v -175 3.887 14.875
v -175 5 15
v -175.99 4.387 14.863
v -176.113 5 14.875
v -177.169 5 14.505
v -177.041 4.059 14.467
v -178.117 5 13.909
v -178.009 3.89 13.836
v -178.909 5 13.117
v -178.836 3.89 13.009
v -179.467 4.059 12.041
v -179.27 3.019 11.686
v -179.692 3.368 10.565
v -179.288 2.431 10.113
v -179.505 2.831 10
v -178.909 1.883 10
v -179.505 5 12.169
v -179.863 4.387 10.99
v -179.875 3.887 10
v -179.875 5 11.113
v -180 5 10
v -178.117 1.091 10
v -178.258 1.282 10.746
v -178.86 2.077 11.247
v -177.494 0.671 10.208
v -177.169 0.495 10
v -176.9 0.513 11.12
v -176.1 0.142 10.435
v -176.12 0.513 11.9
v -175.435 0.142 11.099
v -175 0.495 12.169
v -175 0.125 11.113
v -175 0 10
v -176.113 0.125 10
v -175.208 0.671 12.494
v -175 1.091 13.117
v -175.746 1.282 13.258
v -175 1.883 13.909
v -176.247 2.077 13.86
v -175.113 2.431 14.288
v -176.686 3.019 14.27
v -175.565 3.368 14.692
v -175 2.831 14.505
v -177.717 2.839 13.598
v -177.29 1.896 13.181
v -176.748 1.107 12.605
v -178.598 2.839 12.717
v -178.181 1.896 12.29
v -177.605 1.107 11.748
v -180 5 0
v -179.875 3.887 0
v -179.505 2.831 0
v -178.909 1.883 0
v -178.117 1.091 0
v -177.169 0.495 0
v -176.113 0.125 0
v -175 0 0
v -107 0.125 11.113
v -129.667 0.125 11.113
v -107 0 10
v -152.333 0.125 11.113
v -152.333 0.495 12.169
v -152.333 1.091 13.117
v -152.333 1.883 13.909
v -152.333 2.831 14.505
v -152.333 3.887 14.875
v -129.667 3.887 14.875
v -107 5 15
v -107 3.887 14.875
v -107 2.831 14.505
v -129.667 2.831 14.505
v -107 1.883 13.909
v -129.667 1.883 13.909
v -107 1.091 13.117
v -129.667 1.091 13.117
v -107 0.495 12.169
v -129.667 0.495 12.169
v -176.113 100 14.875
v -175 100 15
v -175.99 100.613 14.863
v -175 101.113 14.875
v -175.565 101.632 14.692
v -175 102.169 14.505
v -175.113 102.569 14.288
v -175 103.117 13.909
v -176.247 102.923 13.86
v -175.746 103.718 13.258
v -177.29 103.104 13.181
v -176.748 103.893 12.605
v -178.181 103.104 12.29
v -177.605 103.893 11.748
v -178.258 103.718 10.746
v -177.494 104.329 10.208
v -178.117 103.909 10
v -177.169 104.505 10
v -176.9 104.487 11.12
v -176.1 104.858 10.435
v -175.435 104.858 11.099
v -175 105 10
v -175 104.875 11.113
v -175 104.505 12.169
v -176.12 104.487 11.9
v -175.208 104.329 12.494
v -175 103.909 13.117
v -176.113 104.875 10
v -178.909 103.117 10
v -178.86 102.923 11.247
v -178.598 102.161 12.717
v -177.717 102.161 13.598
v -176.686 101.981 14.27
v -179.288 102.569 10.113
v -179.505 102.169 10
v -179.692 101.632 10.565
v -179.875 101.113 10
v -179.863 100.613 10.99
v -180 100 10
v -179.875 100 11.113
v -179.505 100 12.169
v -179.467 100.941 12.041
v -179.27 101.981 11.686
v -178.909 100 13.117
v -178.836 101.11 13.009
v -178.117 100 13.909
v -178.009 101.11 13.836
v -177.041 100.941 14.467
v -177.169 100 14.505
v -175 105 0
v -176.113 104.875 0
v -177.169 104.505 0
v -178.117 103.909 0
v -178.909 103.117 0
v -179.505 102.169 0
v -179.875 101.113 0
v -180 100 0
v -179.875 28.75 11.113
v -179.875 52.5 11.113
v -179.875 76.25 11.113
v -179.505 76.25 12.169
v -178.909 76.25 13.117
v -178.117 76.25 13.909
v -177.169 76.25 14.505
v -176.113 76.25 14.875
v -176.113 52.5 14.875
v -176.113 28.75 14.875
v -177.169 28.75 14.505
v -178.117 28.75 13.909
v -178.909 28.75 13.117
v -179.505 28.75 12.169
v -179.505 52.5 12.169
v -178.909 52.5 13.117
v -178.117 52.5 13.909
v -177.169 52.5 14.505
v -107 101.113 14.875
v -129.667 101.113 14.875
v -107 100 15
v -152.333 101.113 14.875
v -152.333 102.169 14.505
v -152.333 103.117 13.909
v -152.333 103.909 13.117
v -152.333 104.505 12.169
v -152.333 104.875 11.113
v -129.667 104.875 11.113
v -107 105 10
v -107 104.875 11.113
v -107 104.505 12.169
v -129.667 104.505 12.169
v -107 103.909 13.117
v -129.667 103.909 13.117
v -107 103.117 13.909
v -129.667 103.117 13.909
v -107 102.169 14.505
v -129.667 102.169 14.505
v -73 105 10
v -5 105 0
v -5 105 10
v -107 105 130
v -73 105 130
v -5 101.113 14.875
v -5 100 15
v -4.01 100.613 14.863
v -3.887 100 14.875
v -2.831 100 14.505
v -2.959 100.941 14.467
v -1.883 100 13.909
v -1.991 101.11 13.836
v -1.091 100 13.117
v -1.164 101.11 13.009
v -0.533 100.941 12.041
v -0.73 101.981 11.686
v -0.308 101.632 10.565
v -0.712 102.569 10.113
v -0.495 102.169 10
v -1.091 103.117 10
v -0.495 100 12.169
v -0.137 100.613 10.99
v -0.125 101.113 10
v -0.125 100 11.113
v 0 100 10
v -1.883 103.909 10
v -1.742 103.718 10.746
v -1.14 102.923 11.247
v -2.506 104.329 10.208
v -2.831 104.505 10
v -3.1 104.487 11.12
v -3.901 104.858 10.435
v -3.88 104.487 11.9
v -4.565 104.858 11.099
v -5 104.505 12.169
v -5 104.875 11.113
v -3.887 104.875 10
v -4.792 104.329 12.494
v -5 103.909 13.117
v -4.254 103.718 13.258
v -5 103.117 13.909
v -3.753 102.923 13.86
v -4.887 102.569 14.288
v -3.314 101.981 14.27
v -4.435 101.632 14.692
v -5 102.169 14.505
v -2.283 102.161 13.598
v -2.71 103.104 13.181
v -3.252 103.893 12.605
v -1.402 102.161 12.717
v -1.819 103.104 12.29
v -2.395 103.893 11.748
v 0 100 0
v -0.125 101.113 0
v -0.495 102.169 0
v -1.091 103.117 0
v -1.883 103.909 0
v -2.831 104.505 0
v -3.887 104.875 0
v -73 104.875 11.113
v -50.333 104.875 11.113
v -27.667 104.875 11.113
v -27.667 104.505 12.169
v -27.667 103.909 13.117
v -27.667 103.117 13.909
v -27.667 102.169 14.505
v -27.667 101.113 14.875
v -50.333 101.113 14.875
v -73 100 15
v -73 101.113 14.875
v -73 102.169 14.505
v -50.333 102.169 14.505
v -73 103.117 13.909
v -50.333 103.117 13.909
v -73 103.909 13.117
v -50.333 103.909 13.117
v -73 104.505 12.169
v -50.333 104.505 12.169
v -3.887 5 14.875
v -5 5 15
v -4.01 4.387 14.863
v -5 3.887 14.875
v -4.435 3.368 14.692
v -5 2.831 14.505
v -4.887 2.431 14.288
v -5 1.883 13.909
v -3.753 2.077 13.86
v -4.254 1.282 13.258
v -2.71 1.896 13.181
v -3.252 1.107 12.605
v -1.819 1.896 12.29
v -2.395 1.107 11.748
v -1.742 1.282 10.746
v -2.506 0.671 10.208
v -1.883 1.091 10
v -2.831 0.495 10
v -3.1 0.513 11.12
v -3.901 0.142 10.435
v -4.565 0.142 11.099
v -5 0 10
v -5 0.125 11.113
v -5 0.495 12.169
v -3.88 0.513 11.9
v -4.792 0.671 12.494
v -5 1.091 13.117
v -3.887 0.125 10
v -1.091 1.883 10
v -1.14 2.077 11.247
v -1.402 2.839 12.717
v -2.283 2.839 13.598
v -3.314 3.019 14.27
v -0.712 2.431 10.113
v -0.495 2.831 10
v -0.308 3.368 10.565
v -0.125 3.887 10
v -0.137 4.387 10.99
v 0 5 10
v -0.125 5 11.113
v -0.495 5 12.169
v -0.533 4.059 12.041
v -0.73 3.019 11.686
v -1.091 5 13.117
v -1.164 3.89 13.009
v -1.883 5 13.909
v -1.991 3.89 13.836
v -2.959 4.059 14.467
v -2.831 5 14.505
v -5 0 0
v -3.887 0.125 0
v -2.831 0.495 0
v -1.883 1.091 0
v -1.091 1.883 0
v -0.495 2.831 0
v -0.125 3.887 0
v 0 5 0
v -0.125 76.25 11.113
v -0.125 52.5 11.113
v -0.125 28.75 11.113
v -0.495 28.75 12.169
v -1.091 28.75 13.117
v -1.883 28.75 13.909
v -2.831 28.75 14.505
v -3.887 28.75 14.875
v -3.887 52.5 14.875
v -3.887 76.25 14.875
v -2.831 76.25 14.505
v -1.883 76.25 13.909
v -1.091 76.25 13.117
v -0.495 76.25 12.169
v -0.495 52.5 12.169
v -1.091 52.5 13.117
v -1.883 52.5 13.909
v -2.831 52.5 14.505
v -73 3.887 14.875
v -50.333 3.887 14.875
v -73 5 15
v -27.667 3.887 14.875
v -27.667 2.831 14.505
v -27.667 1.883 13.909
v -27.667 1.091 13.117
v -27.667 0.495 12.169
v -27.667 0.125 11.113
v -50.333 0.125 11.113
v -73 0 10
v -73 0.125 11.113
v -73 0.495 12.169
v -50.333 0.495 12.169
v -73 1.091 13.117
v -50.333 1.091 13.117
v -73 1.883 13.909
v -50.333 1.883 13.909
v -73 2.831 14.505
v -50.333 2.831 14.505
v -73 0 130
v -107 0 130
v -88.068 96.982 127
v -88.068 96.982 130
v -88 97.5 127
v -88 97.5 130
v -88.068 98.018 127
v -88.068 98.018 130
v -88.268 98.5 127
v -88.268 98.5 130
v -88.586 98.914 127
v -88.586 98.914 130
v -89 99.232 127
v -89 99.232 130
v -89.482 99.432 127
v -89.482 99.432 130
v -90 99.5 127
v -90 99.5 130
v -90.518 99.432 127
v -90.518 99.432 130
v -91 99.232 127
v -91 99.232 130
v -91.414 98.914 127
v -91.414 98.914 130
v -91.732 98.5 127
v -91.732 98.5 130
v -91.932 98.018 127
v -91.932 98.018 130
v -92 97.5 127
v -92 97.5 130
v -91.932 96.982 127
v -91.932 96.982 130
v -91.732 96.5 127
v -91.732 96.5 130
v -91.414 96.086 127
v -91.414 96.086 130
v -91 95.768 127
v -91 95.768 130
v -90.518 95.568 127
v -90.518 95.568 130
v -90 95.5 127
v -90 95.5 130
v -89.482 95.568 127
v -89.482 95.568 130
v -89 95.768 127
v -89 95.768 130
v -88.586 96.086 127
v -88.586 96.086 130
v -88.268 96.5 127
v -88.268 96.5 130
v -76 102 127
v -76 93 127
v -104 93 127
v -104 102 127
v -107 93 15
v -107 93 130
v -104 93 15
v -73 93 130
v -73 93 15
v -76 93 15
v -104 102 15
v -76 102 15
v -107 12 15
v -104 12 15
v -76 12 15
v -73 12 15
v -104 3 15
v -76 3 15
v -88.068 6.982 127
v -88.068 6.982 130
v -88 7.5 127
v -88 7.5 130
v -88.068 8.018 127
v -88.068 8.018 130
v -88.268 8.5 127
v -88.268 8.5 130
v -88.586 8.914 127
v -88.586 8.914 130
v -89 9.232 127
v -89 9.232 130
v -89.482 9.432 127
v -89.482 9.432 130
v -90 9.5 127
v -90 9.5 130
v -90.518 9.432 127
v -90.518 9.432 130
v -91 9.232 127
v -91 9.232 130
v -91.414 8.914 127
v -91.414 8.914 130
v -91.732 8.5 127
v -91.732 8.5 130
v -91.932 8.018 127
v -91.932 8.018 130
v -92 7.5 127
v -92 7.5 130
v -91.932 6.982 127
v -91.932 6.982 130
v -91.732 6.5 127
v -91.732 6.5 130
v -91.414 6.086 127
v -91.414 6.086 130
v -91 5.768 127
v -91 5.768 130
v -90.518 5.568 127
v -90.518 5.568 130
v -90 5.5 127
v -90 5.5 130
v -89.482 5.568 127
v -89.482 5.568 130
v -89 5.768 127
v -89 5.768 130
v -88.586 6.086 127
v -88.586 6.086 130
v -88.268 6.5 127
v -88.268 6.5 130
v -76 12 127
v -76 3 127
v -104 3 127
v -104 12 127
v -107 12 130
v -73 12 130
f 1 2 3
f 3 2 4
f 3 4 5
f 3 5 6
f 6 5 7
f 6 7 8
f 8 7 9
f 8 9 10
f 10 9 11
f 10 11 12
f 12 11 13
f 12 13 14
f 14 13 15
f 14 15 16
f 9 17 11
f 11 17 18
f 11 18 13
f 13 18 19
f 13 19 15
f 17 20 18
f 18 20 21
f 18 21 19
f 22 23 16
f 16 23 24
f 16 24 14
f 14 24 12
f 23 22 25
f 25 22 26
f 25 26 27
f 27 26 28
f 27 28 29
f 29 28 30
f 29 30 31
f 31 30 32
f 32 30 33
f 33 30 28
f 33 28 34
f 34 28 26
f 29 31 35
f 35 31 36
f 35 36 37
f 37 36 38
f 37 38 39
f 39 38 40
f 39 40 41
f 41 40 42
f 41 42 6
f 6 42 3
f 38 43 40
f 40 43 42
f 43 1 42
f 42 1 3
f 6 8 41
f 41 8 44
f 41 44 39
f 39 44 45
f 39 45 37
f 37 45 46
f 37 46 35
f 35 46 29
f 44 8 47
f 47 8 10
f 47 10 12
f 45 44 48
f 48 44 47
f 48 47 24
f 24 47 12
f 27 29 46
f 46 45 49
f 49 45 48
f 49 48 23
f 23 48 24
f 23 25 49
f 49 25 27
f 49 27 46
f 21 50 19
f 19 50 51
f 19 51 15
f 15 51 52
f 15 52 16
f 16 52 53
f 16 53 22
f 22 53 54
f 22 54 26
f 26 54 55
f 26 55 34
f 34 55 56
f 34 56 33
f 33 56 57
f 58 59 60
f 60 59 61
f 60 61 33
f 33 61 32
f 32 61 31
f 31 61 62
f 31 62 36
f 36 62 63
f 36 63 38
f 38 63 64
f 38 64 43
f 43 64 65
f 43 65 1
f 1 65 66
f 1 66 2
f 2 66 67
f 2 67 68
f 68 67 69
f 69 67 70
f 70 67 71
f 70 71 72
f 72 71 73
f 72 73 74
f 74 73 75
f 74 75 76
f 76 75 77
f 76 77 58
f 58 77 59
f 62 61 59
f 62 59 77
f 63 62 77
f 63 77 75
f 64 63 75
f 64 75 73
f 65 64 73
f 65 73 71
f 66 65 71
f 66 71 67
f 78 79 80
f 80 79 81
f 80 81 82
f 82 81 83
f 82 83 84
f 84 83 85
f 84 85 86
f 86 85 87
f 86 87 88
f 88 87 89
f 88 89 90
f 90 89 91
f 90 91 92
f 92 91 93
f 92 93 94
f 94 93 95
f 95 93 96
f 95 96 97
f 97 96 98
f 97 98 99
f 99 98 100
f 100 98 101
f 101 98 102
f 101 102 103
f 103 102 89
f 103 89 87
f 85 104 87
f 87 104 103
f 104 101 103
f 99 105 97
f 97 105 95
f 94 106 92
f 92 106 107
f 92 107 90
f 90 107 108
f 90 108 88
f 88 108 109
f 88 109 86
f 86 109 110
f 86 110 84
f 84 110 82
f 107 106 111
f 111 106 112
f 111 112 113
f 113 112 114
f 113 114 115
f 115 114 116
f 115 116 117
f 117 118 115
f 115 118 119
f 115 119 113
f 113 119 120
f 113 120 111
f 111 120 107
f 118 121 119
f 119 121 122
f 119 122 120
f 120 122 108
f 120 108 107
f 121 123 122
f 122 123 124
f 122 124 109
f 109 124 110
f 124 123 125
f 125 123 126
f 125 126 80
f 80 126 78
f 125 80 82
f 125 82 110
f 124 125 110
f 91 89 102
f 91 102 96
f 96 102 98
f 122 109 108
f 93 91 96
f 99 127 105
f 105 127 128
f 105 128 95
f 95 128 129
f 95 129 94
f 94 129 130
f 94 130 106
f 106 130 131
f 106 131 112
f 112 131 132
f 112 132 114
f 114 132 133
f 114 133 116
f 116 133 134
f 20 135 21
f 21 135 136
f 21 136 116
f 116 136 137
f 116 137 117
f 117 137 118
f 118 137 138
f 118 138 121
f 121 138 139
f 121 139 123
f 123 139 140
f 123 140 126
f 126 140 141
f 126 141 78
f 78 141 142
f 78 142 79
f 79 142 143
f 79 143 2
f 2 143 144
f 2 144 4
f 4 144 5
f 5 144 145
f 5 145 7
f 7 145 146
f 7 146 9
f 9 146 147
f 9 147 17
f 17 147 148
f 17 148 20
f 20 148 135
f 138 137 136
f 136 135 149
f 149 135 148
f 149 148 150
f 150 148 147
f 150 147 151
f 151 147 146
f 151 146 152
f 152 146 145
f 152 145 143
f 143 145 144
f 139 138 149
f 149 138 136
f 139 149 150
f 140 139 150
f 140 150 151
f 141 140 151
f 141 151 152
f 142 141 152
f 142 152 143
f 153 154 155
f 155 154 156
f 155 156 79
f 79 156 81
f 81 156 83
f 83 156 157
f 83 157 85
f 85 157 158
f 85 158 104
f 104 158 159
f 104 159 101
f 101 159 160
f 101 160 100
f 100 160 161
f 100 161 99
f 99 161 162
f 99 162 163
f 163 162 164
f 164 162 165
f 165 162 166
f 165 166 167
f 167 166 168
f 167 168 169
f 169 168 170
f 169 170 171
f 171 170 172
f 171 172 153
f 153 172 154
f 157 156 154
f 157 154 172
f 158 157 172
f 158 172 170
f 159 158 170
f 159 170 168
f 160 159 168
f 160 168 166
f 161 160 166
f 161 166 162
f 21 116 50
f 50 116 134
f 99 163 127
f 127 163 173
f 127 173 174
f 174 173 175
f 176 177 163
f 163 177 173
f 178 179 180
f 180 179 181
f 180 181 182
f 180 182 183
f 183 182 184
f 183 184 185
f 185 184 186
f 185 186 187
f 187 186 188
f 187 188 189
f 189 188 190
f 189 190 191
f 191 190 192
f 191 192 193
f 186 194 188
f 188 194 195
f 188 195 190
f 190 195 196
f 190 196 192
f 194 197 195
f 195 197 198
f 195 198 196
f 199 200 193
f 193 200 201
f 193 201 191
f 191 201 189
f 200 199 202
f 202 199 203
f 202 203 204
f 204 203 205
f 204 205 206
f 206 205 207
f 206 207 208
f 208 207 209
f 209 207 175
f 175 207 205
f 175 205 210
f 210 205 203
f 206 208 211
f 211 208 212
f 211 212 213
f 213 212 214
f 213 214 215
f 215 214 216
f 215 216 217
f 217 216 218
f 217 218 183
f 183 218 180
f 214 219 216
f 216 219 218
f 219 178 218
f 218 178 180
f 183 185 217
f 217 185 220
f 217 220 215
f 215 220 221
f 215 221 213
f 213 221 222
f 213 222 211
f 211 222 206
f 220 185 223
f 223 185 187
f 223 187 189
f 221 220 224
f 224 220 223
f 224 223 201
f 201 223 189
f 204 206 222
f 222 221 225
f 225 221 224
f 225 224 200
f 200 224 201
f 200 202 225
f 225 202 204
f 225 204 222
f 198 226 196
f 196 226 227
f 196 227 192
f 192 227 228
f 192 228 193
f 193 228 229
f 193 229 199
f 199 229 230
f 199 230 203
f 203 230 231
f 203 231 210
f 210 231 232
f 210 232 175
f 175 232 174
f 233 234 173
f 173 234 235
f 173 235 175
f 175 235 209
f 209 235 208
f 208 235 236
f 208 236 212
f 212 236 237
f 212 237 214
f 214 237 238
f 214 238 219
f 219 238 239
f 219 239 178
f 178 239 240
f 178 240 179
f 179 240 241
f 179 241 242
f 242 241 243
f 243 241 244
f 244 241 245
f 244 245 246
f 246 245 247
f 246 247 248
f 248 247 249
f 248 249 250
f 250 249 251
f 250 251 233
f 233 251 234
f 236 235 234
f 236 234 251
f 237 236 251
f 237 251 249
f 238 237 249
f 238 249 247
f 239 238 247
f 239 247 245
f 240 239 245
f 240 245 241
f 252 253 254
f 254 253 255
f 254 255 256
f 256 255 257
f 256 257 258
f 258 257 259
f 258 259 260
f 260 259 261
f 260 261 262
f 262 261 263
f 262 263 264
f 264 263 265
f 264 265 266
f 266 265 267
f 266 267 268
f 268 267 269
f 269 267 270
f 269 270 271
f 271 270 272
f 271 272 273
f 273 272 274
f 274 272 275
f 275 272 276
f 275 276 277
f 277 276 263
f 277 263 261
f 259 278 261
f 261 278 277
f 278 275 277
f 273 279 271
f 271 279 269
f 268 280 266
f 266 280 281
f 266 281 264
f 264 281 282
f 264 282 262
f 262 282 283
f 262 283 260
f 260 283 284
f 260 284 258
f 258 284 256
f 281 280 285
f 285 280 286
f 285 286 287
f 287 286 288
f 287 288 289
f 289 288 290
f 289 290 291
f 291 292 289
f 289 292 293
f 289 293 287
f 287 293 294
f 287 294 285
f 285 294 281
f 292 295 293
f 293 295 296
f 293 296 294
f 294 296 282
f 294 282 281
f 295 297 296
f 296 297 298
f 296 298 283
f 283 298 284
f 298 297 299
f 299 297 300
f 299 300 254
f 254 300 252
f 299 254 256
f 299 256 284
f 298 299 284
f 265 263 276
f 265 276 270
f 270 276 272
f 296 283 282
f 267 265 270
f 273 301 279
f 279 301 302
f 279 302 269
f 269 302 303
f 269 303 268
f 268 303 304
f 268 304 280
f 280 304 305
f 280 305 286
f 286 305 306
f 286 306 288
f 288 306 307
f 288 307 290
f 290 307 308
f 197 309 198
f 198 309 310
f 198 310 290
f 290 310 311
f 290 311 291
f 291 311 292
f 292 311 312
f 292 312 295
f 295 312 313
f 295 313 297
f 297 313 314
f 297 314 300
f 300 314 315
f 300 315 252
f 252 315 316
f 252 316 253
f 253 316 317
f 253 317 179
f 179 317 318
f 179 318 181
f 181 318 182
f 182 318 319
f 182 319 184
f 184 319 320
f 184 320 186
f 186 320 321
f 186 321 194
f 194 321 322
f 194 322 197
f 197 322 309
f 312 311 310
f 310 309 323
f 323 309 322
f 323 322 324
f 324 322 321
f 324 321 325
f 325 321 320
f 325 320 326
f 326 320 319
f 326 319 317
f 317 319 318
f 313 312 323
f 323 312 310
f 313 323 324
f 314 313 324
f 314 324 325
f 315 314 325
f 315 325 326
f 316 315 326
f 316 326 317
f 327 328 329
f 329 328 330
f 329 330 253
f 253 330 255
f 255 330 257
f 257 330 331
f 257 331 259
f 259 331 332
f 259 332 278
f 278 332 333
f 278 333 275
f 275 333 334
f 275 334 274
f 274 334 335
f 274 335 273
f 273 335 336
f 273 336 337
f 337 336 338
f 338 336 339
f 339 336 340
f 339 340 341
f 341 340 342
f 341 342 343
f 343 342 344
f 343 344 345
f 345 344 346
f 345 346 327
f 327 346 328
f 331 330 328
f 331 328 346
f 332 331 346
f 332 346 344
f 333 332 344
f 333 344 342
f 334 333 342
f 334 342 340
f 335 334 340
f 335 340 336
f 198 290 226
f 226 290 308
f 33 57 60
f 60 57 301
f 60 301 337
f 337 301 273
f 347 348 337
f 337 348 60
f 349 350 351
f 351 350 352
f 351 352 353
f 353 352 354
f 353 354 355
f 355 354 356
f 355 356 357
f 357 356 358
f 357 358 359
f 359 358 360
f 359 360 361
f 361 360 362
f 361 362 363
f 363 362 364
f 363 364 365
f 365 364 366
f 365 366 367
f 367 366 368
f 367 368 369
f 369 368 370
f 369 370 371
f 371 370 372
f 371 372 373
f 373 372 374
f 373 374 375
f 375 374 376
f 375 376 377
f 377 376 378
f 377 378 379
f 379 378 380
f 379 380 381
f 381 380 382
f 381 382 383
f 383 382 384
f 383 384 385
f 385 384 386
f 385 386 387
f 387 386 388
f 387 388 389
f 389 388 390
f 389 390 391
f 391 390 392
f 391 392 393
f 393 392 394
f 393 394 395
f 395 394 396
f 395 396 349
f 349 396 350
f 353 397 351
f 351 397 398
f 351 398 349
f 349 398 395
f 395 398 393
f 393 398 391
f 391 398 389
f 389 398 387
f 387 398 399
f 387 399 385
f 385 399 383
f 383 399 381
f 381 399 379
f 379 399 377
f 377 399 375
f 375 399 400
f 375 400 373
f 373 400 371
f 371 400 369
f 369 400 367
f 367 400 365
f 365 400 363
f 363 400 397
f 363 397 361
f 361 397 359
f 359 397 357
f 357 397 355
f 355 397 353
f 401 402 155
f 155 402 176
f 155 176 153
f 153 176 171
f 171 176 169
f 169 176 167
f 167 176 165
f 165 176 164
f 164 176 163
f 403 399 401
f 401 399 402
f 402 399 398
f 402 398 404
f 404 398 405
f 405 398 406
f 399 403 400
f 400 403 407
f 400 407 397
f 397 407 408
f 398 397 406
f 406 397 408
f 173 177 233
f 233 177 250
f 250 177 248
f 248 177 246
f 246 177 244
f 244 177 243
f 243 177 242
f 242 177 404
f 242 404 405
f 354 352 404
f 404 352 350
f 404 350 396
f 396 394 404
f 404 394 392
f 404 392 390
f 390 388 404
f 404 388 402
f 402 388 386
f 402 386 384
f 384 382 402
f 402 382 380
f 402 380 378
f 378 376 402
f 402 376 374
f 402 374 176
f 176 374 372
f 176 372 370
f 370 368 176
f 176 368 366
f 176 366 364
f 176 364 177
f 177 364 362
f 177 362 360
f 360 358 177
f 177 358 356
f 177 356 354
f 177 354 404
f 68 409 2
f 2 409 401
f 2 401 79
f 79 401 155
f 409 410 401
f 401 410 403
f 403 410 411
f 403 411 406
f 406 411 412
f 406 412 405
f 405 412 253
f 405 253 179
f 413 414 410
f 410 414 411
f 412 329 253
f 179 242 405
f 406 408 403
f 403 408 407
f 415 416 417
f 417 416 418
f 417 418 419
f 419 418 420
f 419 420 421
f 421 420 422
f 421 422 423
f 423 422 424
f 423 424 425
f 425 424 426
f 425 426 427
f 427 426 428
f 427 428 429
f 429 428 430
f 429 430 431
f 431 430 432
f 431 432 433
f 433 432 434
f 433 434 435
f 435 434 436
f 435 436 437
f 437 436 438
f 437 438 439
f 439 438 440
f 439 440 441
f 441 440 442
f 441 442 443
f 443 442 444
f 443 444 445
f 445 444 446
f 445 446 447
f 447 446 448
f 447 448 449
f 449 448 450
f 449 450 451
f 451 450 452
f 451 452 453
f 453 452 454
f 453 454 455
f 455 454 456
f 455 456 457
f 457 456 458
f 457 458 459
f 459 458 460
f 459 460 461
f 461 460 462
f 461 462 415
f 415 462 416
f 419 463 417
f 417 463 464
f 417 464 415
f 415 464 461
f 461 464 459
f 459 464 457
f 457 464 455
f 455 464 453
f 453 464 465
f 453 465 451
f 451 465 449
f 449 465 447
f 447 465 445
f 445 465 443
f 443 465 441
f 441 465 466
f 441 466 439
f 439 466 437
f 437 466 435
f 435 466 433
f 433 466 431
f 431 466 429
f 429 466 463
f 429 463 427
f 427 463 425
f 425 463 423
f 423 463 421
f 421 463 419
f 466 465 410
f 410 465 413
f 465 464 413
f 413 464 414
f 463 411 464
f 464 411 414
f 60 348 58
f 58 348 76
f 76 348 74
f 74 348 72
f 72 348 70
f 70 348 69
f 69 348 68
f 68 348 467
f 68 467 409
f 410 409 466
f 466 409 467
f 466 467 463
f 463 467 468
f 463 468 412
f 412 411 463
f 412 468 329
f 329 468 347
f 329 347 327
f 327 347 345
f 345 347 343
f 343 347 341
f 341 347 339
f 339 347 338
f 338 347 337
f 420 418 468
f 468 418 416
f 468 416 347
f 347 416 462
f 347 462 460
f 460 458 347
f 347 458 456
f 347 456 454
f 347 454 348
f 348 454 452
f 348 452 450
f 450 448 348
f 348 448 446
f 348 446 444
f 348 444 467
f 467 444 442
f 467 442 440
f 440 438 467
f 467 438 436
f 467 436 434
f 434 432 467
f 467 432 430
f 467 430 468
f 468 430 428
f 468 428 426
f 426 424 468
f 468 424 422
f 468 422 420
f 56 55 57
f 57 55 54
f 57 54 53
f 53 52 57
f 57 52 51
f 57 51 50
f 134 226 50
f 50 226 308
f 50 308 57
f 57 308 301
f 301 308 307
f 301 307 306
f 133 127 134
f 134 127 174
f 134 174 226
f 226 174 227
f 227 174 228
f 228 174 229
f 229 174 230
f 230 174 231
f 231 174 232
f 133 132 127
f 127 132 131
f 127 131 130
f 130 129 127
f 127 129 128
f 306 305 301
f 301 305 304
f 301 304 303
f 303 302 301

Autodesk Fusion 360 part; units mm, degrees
sketch "Sketch1" plane through (0, 0, 0) normal (0, 0, 1) x (1, 0, 0)
  line L0 (0, 0) -> (-180, 0)
  line L1 (-180, 0) -> (-180, 105)
  line L2 (-180, 105) -> (0, 105)
  line L3 (0, 105) -> (0, 0)
  dimension "d1" = 180
  dimension "d2" = 105
extrude "Extrude1" add sketch "Sketch1" along normal blind 15
sketch "Sketch2" plane through (0, 0, 15) normal (0, 0, 1) x (-1, 0, 0)
  line L0 (0, -105) -> (180, -105)
  line L1 (180, -105) -> (180, 0)
  line L2 (180, 0) -> (0, 0)
  line L3 (0, 0) -> (0, -105)
  line L4 (90, 0) -> (73, 0)
  line L5 (90, 0) -> (107, 0)
  line L6 (107, 0) -> (107, -12)
  line L7 (107, -12) -> (104, -12)
  line L8 (104, -12) -> (104, -3)
  line L9 (73, 0) -> (73, -12)
  line L10 (73, -12) -> (76, -12)
  line L11 (76, -12) -> (76, -3)
  line L12 (76, -3) -> (104, -3)
  dimension "d6" = 17
  dimension "d7" = 17
  dimension "d14" = 3
  dimension "d15" = 9
  dimension "d26" = 12
  dimension "d27" = 3
extrude "Extrude3" add sketch "Sketch2" along normal blind 115 contours L2 L4 L5 L6 L7 L8 L9 L10 L11 L12
sketch "Sketch4" plane through (0, 0, 130) normal (0, 0, 1) x (-1, 0, 0)
  line L0 (107, 0) -> (73, 0)
  line L1 (104, -3) -> (104, -12)
  line L2 (104, -12) -> (107, -12)
  line L3 (107, -12) -> (107, 0)
  line L4 (73, -12) -> (76, -12)
  line L5 (76, -12) -> (76, -3)
  line L6 (73, 0) -> (73, -12)
  line L7 (76, -3) -> (104, -3)
sketch "Sketch5" plane through (0, 0, 130) normal (0, 0, 1) x (-1, 0, 0)
  line L0 (76, -3) -> (104, -3)
  line L1 (104, -3) -> (104, -12)
  line L2 (104, -12) -> (76, -12)
  line L3 (76, -12) -> (76, -3)
  line L4 (76, -3) -> (104, -12)
  line L5 (76, -12) -> (104, -3)
  circle A0 centre (90, -7.5) radius 2
  dimension "d28" = 4
extrude "Extrude4" add sketch "Sketch5" against normal blind 3 contours L3 L4 L5 A0 | L0 L4 L5 A0 | L1 L4 L5 A0 | L2 L4 L5 A0
mirror "Mirror2" about plane through (-90, 52.5, 65) normal (0, -1, 0) of "Extrude3", "Extrude4"
ref_plane "WorkPlane3" through (-90, 52.5, 65) normal (0, 1, 0) x (-1, 0, 0)
fillet "Fillet2" radius 5 10 edges at (0, 52.5, 15) (0, 0, 7.5) (0, 105, 7.5) (-180, 52.5, 15) (-180, 105, 7.5) (-180, 0, 7.5) (-143.5, 0, 15) (-143.5, 105, 15) (-36.5, 0, 15) (-36.5, 105, 15)
